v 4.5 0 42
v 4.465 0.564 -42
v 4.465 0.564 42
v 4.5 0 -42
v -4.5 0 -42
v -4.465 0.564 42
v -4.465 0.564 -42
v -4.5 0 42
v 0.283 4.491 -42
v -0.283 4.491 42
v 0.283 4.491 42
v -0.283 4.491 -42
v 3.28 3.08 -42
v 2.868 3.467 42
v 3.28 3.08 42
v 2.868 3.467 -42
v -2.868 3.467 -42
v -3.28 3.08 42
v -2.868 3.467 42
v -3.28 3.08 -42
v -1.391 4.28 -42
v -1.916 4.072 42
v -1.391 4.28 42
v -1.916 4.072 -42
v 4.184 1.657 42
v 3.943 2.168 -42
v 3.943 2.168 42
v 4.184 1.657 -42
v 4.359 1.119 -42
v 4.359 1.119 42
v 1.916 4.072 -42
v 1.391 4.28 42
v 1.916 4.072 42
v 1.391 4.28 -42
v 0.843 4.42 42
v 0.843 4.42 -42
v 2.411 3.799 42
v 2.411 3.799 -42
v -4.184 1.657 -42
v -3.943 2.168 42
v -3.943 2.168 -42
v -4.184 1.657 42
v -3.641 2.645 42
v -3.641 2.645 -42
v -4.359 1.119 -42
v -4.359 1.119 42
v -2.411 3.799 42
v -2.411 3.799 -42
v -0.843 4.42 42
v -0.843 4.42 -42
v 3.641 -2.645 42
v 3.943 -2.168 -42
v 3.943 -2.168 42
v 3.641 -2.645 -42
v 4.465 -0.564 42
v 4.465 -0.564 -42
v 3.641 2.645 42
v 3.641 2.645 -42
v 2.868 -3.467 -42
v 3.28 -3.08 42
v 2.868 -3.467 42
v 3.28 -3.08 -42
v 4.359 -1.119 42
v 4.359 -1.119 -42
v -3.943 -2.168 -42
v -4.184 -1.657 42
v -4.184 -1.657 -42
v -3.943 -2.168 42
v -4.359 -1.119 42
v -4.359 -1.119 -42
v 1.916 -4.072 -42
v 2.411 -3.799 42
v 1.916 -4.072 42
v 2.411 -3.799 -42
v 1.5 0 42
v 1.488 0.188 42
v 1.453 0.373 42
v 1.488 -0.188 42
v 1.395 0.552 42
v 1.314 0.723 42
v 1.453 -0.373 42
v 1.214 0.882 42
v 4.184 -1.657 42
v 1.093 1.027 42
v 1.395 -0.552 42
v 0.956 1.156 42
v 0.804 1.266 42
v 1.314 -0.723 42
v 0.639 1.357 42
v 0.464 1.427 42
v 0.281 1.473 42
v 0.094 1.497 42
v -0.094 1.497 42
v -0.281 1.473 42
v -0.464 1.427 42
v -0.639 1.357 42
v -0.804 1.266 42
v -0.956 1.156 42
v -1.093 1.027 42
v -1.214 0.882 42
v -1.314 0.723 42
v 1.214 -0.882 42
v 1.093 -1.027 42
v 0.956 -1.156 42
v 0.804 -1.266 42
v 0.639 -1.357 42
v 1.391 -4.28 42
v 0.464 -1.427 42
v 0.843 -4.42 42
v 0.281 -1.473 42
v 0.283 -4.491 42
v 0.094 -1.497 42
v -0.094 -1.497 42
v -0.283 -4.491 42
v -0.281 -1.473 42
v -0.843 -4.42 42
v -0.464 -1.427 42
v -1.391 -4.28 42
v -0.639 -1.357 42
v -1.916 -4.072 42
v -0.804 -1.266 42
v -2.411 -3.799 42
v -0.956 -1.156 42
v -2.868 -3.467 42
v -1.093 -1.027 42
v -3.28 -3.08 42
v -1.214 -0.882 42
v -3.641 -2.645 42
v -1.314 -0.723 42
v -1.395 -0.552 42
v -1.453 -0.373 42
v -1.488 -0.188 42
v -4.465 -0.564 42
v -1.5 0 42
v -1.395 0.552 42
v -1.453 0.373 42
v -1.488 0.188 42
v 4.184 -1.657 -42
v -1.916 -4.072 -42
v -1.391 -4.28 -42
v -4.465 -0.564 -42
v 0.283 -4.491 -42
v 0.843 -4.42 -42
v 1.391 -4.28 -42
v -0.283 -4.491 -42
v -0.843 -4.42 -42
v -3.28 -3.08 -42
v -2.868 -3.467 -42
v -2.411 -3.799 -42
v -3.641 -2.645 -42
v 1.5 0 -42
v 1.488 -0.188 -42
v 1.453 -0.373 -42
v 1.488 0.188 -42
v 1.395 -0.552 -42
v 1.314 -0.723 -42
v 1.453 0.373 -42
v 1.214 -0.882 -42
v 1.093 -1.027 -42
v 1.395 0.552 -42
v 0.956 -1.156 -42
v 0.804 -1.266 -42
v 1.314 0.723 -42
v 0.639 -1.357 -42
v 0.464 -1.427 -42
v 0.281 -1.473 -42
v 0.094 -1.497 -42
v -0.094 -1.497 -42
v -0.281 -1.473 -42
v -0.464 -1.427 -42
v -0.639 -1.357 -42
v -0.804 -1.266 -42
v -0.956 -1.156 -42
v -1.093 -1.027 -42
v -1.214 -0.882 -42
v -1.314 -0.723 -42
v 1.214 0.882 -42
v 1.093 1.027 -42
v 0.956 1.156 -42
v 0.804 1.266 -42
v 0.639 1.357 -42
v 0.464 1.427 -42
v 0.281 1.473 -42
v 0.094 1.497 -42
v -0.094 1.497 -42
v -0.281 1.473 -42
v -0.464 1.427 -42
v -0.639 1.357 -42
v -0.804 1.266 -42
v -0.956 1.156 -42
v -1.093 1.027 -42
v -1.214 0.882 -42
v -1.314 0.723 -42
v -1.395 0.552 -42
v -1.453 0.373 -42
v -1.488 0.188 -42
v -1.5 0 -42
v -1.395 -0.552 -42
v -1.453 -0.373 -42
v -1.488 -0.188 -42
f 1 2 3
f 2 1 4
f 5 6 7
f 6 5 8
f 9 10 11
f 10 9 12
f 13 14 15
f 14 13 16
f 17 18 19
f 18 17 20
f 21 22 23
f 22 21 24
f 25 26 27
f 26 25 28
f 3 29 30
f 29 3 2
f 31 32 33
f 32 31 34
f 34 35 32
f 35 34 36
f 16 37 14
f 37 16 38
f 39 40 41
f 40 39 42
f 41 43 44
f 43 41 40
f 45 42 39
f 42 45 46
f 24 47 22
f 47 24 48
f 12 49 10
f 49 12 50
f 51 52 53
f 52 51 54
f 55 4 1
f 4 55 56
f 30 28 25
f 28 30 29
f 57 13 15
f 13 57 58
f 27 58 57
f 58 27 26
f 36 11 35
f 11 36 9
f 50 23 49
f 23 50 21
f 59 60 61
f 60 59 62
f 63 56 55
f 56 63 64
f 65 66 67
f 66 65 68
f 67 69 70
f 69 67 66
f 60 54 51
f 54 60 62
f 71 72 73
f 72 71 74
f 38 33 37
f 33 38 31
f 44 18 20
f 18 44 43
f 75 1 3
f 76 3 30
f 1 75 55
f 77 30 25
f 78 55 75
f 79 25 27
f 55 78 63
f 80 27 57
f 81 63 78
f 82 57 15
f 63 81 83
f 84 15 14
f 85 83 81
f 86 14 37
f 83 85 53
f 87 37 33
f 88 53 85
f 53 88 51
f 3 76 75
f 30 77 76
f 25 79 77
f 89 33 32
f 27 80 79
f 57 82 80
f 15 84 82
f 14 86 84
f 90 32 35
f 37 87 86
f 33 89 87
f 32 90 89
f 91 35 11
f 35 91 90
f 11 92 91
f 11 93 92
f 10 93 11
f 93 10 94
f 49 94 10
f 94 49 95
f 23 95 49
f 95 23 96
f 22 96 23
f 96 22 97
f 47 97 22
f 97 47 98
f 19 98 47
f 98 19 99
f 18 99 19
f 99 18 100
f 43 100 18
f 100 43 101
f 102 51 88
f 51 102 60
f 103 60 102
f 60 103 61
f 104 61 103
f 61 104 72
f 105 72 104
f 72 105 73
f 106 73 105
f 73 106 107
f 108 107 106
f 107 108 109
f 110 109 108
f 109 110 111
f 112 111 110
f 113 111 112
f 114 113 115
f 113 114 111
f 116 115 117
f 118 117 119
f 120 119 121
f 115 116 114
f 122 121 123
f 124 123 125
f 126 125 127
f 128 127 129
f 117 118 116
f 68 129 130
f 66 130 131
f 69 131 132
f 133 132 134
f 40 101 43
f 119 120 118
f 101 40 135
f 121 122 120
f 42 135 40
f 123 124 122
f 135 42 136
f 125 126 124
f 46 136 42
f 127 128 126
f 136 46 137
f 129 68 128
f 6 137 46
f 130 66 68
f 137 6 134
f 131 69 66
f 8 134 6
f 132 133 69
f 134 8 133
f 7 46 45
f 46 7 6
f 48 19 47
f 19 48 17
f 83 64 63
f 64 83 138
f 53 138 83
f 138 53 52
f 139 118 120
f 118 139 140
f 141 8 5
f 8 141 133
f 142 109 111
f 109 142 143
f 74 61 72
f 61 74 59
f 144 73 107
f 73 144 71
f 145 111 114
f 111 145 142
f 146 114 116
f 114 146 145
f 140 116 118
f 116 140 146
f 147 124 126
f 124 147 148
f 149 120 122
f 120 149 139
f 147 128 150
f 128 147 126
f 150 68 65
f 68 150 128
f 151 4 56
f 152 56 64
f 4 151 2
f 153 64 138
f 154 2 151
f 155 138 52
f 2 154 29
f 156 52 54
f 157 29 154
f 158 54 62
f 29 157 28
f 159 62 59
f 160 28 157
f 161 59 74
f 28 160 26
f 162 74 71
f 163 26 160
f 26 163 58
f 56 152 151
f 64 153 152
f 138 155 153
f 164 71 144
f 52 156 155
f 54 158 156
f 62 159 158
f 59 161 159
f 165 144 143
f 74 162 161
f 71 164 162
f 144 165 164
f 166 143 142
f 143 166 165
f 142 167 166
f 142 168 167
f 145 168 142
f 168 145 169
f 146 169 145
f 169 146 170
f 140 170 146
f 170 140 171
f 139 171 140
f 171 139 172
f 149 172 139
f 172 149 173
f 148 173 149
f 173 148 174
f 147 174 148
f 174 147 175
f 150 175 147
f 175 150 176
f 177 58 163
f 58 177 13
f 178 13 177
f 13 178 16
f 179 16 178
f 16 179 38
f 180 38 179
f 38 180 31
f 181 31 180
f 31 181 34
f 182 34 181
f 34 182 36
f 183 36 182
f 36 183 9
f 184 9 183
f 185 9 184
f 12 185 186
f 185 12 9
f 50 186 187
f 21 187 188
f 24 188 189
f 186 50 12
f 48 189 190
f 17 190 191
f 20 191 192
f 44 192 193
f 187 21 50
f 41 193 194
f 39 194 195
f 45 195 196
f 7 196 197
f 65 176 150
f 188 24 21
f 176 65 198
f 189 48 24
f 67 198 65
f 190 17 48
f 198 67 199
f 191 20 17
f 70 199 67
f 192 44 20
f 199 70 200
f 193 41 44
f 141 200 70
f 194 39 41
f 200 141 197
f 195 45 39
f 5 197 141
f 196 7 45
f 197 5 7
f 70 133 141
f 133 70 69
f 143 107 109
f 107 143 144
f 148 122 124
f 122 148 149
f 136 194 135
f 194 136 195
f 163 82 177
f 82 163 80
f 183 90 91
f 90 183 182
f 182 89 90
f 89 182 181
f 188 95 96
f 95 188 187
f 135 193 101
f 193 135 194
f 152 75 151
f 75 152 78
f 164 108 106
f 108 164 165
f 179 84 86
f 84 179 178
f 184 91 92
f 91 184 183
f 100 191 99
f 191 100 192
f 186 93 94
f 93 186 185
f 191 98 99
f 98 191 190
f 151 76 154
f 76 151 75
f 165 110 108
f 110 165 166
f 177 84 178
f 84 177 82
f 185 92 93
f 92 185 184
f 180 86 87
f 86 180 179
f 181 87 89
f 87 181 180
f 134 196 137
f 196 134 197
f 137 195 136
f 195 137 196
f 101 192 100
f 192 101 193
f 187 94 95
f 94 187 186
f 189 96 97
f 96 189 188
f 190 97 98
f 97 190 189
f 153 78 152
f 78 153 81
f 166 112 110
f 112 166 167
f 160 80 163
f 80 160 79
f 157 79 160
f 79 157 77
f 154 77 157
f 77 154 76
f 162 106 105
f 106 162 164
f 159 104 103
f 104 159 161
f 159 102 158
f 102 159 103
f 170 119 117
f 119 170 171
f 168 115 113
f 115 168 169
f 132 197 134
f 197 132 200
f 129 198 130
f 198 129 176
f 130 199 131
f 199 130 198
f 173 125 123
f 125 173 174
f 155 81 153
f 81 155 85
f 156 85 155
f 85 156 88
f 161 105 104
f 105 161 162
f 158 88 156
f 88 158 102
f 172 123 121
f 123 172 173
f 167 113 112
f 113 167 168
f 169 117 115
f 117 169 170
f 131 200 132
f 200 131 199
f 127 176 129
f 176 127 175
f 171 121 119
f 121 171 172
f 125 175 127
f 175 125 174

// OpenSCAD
$fn = 50;


difference() {
	union() {
		translate(v = [0, 0, -42.0000000000]) {
			cylinder(h = 84, r = 4.5000000000);
		}
	}
	union() {
		translate(v = [0, 0, -100.0000000000]) {
			cylinder(h = 200, r = 1.5000000000);
		}
	}
}
